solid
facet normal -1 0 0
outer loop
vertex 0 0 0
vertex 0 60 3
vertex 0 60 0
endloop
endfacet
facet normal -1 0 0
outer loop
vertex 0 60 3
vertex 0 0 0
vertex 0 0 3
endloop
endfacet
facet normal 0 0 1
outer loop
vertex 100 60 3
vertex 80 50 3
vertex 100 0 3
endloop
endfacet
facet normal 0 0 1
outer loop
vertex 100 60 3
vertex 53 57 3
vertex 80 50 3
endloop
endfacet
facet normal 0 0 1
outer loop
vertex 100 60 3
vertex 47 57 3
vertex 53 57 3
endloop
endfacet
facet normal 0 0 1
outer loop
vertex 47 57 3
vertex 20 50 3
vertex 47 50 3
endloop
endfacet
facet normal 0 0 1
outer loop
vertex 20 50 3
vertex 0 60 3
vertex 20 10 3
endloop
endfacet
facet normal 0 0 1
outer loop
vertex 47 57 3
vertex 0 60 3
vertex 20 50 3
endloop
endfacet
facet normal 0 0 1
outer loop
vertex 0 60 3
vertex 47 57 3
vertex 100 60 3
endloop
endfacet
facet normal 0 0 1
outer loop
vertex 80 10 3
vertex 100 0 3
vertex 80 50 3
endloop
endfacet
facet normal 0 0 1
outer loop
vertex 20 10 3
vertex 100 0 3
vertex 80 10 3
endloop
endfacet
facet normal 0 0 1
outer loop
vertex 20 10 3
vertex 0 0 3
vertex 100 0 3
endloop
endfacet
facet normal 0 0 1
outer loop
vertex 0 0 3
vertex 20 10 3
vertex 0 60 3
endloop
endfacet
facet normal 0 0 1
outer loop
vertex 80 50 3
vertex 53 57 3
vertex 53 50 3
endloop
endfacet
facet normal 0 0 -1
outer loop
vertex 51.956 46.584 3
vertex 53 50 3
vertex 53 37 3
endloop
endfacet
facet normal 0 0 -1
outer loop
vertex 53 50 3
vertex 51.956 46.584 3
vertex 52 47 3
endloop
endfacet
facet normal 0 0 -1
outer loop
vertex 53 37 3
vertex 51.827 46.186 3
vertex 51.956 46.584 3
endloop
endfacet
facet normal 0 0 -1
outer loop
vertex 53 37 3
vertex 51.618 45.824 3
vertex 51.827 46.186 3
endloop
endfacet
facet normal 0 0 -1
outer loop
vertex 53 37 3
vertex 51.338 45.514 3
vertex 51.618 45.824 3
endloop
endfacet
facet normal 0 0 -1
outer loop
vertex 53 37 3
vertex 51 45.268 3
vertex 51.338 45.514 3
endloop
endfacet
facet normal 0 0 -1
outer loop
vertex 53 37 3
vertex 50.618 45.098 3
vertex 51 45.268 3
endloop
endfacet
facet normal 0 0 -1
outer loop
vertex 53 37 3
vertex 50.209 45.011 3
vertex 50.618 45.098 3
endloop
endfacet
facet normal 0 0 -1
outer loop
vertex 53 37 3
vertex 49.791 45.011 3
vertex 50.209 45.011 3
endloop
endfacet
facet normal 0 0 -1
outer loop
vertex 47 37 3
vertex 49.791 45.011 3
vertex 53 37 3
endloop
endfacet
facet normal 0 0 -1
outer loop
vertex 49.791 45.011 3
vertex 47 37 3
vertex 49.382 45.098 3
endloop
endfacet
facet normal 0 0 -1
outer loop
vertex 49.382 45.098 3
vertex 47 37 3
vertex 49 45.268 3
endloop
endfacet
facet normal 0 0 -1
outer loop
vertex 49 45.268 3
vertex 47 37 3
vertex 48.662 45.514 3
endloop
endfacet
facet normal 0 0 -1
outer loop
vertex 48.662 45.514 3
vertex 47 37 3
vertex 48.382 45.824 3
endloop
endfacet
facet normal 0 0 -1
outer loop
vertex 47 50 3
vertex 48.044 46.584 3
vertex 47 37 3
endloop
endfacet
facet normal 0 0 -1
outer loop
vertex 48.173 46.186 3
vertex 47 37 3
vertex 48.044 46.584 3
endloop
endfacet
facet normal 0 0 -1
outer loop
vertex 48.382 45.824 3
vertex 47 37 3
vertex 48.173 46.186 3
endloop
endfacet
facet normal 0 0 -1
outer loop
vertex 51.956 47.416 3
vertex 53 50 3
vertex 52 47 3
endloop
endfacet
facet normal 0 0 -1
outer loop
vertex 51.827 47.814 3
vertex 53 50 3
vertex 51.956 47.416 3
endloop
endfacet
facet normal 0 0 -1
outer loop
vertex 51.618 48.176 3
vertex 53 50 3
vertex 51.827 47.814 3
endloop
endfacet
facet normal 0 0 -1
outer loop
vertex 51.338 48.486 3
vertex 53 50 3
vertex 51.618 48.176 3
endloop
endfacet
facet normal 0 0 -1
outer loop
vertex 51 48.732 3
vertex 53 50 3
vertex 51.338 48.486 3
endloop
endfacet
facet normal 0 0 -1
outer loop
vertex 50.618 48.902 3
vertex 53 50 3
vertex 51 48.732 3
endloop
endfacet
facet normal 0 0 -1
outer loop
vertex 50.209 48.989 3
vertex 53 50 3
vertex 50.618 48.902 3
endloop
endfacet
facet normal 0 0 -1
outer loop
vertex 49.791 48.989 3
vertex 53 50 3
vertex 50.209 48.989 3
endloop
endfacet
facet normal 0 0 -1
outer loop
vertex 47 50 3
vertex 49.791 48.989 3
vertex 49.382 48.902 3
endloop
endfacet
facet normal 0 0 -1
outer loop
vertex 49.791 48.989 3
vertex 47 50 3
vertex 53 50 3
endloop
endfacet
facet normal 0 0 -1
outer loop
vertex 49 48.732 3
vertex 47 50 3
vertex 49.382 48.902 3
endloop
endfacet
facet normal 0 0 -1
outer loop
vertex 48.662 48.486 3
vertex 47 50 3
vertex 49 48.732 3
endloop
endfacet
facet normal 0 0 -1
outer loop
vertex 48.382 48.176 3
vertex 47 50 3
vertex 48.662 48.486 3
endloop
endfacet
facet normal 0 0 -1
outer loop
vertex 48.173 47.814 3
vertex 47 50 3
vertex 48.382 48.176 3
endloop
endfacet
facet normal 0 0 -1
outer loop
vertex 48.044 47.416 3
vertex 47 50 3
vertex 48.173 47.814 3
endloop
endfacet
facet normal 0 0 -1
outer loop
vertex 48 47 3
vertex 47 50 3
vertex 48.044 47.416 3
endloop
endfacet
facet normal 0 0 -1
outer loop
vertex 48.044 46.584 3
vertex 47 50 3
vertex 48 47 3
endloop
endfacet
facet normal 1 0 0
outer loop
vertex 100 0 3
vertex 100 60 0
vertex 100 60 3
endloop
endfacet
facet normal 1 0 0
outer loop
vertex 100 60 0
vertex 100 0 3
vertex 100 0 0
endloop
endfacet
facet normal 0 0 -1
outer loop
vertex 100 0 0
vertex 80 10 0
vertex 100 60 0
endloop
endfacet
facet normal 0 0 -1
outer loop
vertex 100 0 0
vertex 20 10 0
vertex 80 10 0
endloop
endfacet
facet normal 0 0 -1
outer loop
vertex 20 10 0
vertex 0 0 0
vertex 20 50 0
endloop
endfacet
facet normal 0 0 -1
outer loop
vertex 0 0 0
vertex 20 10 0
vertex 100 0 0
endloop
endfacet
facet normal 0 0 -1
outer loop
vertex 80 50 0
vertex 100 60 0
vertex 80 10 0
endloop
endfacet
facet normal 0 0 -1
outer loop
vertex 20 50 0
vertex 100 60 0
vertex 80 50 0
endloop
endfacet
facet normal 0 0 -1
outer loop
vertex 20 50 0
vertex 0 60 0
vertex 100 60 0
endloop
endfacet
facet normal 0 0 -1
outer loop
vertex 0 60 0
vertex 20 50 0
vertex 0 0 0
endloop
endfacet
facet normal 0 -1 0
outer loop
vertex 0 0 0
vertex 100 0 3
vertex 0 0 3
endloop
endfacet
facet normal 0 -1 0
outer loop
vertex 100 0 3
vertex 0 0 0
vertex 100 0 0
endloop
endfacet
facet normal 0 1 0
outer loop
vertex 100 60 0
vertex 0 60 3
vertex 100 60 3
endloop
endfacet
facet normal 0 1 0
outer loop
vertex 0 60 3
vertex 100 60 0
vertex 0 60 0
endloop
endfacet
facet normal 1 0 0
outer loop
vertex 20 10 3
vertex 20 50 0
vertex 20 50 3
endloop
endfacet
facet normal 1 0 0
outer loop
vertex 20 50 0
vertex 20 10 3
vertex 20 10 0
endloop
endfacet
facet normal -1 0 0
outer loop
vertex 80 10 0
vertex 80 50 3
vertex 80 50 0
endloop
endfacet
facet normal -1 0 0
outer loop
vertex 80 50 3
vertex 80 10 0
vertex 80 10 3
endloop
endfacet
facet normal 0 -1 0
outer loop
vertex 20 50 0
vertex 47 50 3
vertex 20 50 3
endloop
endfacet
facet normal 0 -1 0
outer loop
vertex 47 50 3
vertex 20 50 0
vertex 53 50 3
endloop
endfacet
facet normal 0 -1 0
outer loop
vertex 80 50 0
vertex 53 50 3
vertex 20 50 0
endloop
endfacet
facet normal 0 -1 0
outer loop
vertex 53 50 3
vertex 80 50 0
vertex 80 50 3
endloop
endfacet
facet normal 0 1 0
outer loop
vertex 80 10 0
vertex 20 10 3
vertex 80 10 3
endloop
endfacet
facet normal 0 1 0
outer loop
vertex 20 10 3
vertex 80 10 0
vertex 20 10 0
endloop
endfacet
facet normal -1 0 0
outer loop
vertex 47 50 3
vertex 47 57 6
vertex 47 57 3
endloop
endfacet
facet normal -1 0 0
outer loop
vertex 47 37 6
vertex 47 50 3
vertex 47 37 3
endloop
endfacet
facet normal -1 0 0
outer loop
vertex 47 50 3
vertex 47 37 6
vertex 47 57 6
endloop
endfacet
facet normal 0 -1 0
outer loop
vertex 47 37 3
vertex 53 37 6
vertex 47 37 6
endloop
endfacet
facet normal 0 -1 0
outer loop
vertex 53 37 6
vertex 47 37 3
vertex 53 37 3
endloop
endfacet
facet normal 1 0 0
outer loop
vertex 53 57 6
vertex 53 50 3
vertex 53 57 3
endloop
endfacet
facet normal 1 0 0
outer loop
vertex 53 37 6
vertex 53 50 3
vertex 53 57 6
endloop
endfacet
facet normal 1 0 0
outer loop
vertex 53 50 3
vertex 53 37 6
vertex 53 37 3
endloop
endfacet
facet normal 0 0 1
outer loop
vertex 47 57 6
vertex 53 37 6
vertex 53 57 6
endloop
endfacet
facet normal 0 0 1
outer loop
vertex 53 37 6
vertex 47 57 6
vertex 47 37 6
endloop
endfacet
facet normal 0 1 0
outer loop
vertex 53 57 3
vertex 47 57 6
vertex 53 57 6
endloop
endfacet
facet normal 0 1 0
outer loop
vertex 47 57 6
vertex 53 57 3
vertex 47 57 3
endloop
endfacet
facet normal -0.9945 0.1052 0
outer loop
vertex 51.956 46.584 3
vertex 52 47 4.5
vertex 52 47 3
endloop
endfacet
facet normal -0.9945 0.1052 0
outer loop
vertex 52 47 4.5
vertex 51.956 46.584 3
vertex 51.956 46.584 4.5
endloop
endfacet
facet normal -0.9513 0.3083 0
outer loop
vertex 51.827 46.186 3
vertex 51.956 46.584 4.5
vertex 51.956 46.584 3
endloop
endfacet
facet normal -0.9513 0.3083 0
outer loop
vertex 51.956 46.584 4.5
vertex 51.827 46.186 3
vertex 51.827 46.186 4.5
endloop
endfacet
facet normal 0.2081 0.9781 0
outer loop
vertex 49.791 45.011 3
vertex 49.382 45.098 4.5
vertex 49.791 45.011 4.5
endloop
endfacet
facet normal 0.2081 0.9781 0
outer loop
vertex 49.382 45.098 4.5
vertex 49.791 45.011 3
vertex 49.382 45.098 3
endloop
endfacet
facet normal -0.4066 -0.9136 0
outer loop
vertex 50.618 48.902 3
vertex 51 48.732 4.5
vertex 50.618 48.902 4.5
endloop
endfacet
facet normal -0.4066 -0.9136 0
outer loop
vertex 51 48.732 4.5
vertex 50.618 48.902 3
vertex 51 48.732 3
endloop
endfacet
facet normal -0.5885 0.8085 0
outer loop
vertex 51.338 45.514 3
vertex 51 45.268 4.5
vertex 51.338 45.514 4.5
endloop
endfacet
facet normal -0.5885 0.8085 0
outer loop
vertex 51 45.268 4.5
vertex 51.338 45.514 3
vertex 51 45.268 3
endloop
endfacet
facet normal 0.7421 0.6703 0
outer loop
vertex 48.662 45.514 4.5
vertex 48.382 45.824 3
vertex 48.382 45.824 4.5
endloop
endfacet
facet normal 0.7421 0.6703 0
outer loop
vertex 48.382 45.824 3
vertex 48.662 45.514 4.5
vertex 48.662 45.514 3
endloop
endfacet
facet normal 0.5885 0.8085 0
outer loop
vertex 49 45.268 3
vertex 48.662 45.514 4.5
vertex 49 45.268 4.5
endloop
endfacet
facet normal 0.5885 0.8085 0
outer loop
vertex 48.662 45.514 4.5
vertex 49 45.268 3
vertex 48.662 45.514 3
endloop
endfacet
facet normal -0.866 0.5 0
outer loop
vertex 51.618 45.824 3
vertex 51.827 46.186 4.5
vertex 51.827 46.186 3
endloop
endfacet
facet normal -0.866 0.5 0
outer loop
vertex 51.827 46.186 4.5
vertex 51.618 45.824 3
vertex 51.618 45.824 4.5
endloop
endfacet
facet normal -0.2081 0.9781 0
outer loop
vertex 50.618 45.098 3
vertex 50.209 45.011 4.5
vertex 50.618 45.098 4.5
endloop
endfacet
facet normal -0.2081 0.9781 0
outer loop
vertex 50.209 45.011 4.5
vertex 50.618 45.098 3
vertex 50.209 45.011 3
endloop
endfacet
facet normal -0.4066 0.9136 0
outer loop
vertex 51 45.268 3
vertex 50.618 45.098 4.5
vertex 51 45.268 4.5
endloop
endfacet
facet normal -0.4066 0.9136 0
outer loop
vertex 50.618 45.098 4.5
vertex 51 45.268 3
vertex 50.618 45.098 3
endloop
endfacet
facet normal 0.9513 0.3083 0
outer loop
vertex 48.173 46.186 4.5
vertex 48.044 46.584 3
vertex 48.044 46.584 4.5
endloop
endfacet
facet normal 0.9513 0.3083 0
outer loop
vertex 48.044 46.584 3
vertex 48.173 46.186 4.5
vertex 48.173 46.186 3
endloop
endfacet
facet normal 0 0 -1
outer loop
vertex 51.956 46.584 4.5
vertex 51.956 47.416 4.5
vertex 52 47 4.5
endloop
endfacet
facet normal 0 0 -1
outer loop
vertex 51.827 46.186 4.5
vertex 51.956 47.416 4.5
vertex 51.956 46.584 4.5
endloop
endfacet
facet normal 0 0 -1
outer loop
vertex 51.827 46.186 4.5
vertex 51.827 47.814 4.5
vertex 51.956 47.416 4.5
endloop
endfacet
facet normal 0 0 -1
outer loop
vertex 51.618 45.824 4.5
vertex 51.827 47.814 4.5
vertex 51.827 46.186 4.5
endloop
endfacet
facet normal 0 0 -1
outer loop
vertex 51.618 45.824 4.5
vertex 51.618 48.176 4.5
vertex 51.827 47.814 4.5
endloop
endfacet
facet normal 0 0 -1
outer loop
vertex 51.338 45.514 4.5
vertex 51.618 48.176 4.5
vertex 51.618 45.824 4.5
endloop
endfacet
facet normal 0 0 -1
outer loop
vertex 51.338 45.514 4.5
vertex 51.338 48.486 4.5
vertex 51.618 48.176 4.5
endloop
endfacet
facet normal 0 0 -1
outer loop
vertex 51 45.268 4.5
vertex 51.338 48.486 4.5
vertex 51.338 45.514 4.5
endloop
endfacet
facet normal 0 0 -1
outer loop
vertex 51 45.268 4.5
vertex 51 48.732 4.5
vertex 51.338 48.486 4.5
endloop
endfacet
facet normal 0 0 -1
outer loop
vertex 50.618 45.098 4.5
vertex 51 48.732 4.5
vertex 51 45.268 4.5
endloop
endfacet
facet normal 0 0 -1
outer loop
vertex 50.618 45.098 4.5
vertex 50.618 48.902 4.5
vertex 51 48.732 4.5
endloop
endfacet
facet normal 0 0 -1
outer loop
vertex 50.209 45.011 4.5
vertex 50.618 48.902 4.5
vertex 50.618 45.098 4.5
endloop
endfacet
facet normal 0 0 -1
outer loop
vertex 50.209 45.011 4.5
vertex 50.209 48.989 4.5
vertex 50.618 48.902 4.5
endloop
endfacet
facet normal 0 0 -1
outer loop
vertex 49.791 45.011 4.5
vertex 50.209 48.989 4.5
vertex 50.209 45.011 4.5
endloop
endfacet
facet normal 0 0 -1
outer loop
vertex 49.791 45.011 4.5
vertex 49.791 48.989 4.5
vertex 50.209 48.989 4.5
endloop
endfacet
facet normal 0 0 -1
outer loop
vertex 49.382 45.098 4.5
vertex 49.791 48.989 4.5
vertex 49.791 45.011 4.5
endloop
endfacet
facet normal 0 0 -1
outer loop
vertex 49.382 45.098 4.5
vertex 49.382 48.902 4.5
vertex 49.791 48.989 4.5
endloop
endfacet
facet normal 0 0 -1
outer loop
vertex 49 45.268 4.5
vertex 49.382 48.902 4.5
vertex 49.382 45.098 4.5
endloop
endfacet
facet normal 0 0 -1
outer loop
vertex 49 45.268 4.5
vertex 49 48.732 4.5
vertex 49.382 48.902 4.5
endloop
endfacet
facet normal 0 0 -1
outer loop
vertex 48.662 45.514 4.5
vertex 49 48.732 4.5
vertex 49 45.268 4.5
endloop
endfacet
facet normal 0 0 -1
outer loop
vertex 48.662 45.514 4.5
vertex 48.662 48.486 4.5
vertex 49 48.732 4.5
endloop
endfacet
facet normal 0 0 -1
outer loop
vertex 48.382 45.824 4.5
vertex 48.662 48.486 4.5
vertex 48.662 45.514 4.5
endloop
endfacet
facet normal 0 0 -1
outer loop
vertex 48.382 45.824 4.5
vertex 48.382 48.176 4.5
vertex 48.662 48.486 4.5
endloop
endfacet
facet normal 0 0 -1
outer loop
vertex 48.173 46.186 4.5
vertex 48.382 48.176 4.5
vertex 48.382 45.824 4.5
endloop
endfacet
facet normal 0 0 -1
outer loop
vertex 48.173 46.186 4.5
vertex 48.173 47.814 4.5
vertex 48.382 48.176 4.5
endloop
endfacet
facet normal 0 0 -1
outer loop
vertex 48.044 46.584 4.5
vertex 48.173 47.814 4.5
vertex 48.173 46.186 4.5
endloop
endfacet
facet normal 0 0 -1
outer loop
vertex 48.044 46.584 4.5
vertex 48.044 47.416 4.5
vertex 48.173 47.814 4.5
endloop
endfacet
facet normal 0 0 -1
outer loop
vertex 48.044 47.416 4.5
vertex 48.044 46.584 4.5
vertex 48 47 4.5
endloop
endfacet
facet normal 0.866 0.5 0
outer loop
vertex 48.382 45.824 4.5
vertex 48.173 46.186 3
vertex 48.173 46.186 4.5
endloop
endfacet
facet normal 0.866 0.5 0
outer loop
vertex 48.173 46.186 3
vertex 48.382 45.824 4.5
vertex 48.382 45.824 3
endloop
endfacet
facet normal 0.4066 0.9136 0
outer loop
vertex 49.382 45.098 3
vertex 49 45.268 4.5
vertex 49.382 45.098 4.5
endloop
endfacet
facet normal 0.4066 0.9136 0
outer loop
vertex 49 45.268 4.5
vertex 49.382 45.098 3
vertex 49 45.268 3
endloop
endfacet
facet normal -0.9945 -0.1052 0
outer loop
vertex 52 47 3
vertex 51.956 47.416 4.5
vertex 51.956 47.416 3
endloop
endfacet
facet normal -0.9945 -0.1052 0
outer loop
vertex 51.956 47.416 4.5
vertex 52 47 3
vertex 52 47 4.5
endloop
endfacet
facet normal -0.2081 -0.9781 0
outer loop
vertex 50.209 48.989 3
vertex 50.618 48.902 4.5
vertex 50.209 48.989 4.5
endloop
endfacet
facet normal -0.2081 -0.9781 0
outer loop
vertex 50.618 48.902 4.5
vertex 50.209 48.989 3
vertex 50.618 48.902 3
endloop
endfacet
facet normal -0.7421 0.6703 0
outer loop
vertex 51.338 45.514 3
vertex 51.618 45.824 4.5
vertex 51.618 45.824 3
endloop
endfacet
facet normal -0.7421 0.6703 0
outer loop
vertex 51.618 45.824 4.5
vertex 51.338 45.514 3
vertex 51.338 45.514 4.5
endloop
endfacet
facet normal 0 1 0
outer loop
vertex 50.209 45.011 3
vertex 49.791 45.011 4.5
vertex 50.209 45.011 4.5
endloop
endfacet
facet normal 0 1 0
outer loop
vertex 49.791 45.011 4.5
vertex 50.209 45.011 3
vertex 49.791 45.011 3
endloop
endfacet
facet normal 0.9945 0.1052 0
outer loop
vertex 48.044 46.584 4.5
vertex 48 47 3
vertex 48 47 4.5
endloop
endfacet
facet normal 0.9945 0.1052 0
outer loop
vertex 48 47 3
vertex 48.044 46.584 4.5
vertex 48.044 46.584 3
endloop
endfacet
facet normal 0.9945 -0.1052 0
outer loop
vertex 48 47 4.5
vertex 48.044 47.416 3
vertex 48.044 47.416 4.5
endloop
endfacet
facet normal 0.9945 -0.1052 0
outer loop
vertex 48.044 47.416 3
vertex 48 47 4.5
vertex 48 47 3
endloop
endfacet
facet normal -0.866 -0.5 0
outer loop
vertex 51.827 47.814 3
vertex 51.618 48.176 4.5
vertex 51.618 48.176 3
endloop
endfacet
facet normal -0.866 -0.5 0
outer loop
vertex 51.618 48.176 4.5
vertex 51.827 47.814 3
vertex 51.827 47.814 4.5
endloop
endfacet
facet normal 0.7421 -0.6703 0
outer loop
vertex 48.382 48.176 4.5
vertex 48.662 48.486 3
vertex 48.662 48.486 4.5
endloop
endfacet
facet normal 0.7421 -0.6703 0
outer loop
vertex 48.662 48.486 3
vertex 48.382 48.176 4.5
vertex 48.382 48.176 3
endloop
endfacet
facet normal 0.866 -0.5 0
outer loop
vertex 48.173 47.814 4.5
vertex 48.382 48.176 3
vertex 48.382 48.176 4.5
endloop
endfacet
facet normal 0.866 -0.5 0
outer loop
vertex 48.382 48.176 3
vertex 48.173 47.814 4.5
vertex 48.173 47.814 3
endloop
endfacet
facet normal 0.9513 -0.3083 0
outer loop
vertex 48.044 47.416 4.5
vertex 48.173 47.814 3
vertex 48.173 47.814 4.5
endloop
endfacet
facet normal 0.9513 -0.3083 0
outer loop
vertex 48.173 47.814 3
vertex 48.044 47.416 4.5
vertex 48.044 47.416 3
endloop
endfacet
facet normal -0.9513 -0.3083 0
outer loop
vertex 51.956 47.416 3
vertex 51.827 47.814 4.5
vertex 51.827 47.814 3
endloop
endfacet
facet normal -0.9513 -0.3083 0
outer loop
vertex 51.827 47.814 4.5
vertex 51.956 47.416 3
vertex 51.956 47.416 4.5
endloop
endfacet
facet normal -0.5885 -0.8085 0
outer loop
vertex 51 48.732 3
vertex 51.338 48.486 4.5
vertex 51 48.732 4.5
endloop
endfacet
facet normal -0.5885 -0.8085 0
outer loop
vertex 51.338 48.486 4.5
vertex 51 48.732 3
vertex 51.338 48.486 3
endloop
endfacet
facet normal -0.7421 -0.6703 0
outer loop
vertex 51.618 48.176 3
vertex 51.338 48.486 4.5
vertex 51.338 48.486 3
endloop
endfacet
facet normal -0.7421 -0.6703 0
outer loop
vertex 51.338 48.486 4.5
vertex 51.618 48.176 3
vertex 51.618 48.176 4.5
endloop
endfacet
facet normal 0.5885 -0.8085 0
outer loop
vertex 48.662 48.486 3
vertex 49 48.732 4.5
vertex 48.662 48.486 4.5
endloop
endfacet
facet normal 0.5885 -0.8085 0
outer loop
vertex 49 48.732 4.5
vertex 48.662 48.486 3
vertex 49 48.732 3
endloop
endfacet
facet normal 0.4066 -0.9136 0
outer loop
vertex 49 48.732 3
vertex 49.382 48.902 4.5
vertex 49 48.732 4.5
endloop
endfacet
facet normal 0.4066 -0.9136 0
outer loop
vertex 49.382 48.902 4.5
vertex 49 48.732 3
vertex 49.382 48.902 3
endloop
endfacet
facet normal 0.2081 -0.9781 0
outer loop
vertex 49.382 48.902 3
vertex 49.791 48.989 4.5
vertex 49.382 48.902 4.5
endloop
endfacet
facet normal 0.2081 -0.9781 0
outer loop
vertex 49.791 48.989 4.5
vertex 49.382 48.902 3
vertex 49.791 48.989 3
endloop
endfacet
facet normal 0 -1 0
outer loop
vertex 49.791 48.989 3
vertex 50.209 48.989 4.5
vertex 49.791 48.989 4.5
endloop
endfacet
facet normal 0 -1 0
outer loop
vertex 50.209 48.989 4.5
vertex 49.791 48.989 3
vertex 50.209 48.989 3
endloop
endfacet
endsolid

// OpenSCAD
// Parameters
base_length = 100;
base_width = 60;
base_thickness = 3;
cutout_length = 60;
cutout_width = 40;

bracket_length = 30;
bracket_height = 20;
bracket_width = 10;

tab_width = 6;
tab_height = 20;
tab_thickness = 3;
hole_diameter = 4;

// Base Frame
module base_frame() {
    difference() {
        cube([base_length, base_width, base_thickness]);
        translate([(base_length - cutout_length)/2, (base_width - cutout_width)/2, 0])
            cube([cutout_length, cutout_width, base_thickness + 1]);
    }
}

// Sloped Support Bracket
module sloped_support_bracket() {
    difference() {
        polyhedron(
            points=[
                [0, 0, 0], // 0
                [bracket_length, 0, 0], // 1
                [bracket_length, bracket_width, 0], // 2
                [0, bracket_width, 0], // 3
                [0, 0, bracket_height], // 4
                [bracket_length, 0, bracket_height] // 5
            ],
            faces=[
                [0, 1, 2, 3],
                [0, 1, 5, 4],
                [1, 2, 5],
                [2, 3, 4, 5],
                [3, 0, 4]
            ]
        );
    }
}

// Vertical Support Tab
module vertical_support_tab() {
    difference() {
        cube([tab_width, tab_thickness, tab_height]);
        translate([tab_width/2, tab_thickness/2, tab_height/2])
            rotate([90, 0, 0])
            cylinder(h=tab_thickness + 1, r=hole_diameter/2, $fn=30);
    }
}

// Assembly
module assembly() {
    // Base Frame
    base_frame();

    // Sloped Brackets
    translate([5, 0, base_thickness])
        sloped_support_bracket();
    translate([base_length - bracket_length - 5, 0, base_thickness])
        mirror([1, 0, 0])
        sloped_support_bracket();

    // Vertical Support Tab
    translate([(base_length - tab_width)/2, base_width - tab_thickness, base_thickness])
        rotate([90, 0, 0])
        vertical_support_tab();
}

// Render the full assembly
assembly();
